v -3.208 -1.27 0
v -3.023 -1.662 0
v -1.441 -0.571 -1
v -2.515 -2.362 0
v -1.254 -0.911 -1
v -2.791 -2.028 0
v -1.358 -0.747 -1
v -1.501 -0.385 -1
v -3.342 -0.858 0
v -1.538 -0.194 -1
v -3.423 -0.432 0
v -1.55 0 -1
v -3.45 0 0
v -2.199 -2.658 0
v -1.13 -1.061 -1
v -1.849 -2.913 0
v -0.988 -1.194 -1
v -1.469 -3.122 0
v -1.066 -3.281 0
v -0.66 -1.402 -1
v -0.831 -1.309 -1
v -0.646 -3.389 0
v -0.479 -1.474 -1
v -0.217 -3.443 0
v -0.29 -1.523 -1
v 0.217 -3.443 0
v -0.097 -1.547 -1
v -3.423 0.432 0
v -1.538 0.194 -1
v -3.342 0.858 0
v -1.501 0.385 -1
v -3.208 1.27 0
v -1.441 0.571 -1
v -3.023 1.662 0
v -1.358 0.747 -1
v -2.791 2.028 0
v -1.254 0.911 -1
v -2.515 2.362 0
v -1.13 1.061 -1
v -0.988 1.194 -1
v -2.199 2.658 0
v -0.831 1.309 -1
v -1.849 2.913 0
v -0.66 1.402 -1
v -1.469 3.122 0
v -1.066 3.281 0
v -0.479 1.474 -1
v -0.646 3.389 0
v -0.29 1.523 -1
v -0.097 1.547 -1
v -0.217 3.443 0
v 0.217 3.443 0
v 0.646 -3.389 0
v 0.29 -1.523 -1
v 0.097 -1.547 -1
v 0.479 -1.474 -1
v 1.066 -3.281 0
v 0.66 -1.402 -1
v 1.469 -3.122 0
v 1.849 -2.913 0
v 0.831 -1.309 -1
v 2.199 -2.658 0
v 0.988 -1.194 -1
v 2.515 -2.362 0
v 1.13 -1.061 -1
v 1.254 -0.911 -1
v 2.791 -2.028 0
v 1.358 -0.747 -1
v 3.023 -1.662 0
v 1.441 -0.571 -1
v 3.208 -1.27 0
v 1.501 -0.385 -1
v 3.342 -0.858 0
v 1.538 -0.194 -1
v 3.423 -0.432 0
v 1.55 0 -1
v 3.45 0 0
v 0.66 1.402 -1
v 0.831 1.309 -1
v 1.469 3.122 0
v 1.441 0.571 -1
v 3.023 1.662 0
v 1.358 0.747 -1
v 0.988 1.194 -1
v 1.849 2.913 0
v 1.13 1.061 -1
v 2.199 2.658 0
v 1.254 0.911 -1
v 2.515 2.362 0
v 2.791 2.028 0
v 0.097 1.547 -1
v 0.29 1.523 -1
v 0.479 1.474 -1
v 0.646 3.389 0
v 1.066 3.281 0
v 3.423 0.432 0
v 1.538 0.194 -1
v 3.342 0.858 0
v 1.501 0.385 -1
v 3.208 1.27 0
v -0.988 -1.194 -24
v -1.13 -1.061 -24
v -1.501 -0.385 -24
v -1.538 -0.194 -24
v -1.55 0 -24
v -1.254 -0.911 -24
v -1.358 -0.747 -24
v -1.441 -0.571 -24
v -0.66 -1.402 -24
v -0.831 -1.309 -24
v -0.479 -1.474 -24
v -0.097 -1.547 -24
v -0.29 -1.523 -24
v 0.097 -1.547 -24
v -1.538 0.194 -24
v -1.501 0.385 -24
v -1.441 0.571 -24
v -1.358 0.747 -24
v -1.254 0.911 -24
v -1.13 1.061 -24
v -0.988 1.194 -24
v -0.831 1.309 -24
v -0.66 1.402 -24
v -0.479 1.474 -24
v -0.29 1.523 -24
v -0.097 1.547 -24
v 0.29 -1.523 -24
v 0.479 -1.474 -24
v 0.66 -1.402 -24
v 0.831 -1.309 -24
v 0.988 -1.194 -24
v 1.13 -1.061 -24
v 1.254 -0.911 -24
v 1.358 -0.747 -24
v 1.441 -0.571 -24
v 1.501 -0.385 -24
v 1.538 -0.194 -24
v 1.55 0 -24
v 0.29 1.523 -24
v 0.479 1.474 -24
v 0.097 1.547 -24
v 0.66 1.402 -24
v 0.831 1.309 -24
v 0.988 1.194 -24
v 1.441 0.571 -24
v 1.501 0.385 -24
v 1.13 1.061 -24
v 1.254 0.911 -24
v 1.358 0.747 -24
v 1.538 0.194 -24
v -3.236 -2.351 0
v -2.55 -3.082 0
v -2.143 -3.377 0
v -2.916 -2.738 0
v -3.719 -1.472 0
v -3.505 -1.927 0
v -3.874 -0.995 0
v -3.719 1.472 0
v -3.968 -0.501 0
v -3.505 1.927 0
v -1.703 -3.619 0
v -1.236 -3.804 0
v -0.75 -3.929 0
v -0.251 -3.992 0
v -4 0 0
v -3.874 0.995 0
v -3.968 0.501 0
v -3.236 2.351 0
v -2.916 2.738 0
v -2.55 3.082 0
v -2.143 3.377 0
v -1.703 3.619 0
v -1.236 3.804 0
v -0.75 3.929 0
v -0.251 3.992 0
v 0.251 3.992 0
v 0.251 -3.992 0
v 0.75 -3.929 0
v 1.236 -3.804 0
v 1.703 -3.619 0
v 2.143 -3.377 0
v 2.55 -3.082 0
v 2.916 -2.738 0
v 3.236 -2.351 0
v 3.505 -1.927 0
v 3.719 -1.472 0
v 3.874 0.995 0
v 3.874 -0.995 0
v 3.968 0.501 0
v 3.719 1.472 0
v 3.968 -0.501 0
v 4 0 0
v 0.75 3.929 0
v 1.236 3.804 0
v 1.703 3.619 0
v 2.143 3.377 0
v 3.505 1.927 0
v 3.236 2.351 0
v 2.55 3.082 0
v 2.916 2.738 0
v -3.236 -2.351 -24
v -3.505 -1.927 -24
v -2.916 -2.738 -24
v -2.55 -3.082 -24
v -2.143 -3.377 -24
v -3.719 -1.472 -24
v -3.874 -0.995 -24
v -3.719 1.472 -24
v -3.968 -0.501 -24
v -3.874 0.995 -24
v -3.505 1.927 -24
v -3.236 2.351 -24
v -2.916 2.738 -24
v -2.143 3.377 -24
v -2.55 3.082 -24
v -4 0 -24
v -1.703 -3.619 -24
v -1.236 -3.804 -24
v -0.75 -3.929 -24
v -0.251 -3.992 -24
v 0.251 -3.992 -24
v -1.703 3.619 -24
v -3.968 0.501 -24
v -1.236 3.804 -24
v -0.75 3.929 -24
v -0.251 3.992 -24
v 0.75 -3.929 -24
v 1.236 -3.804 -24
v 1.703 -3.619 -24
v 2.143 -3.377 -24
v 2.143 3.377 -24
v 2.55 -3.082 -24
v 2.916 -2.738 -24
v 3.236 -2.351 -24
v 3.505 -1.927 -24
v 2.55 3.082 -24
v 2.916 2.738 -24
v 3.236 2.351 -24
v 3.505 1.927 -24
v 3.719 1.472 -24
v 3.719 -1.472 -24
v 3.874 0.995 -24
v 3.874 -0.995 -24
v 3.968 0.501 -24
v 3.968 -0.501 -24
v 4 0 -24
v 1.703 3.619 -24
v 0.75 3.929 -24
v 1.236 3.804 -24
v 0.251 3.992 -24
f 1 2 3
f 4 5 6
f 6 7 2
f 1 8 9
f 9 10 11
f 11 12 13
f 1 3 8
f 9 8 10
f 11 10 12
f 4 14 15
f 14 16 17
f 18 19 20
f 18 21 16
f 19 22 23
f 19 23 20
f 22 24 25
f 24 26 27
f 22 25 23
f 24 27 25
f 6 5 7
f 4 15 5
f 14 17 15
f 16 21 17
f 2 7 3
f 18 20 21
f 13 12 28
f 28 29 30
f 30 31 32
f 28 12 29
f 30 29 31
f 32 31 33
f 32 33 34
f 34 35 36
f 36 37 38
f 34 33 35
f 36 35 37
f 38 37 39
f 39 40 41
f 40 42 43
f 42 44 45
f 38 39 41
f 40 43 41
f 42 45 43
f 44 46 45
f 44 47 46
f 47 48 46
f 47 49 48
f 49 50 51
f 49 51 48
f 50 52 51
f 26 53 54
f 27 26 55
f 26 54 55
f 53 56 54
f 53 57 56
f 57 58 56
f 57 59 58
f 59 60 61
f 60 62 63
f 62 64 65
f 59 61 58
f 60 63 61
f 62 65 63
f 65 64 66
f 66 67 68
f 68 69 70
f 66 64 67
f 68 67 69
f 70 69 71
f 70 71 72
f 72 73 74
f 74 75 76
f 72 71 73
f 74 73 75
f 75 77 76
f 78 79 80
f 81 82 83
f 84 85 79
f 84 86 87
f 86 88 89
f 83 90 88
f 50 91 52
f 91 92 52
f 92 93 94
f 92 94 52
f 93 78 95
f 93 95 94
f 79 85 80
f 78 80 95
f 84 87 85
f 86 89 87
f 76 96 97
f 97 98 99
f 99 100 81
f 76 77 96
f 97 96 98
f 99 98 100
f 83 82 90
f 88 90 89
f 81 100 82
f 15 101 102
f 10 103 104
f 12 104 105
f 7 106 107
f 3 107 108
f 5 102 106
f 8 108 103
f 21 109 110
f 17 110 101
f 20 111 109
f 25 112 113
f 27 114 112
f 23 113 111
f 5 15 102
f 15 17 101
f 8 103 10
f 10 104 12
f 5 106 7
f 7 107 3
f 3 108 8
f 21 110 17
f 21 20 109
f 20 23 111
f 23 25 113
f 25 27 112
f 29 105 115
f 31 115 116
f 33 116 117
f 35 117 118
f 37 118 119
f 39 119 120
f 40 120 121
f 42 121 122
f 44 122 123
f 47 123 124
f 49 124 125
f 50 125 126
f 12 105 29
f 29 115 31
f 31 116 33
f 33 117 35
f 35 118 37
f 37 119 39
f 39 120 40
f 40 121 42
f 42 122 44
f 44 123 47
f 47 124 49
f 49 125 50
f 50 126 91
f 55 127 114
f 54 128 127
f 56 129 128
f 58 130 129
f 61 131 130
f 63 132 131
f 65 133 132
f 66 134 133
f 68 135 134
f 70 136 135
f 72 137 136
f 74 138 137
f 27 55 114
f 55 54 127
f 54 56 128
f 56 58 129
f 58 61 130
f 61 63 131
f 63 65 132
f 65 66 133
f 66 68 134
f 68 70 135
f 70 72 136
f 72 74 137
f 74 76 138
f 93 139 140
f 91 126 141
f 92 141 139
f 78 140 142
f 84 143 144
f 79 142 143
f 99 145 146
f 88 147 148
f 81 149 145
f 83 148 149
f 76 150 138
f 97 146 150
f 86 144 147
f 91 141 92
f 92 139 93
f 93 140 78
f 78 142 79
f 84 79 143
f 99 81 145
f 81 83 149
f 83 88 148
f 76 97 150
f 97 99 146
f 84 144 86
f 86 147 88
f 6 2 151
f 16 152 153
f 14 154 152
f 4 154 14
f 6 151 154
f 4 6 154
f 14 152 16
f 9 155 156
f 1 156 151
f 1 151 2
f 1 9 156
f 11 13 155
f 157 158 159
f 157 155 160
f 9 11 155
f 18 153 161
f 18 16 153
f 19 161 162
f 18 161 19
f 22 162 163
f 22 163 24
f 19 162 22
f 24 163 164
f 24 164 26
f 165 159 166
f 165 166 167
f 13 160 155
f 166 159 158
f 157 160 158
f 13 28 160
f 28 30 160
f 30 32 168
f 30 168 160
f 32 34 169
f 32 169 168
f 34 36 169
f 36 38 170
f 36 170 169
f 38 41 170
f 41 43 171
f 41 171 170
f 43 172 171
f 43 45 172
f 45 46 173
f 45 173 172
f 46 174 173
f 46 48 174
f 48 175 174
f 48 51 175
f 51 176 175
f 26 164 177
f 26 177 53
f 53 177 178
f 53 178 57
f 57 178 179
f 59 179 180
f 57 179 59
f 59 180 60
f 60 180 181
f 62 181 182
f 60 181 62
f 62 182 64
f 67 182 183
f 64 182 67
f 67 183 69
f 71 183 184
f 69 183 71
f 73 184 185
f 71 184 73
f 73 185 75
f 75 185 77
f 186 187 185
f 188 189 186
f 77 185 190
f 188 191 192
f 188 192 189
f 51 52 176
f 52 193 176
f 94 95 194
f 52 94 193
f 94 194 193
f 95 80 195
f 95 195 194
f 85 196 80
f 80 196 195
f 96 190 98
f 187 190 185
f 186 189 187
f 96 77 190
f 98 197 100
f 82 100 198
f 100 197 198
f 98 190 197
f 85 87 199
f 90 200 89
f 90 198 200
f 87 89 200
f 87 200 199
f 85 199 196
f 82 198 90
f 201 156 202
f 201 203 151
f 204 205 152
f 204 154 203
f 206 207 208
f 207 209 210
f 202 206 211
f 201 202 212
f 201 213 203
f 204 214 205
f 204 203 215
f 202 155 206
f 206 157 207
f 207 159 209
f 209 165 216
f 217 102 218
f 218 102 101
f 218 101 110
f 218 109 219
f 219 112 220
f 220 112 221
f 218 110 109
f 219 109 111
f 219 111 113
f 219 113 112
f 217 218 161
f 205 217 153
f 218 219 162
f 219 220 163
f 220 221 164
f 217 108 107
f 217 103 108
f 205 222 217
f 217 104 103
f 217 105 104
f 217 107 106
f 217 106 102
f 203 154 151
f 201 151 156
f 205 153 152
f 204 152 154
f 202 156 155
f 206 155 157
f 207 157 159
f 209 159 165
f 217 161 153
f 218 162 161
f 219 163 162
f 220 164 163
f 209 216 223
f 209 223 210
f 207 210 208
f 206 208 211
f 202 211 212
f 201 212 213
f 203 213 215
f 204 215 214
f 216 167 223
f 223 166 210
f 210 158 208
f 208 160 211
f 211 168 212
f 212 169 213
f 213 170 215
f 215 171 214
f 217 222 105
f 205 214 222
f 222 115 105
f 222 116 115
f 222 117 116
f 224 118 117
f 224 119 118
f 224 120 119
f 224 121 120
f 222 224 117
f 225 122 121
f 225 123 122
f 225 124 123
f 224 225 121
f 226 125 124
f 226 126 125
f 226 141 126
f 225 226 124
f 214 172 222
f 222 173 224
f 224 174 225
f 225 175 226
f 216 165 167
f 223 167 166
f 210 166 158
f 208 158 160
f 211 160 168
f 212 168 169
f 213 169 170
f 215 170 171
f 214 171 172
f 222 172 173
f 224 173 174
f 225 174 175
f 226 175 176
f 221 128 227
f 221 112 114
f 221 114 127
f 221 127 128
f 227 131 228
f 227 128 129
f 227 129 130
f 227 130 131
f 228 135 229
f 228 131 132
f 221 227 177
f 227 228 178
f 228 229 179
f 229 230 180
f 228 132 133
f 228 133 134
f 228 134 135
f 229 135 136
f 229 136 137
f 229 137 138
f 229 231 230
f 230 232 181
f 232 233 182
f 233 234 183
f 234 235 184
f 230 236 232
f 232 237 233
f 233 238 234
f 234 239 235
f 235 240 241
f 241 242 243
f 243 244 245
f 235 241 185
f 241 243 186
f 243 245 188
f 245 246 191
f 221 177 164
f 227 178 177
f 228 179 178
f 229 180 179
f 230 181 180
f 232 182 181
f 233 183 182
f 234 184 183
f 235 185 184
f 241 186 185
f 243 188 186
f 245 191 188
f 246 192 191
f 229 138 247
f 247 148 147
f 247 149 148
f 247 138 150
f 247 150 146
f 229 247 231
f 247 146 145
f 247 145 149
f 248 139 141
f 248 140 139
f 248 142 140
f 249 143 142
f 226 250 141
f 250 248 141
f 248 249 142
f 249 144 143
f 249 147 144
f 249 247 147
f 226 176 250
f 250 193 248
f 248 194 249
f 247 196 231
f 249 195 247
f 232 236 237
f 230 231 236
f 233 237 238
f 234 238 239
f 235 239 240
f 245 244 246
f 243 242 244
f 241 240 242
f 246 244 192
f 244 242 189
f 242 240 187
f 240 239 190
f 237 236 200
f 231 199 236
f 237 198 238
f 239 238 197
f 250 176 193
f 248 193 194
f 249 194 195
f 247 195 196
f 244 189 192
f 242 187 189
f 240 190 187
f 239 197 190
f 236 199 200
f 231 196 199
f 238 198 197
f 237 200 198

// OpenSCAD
$fn = 50;

difference() {
	union() {
		translate(v = [0, 0, -24.0]) {
			cylinder(h = 24, r = 4.0);
		}
	}
	union() {
		translate(v = [0, 0, 0]) {
			rotate(a = [0, 0, 0]) {
				difference() {
					union() {
						translate(v = [0, 0, -27.0]) {
							cylinder(h = 27, r = 1.25);
						}
						translate(v = [0, 0, -1.0]) {
							cylinder(h = 1.0, r1 = 1.55, r2 = 3.45);
						}
						translate(v = [0, 0, -27.0]) {
							cylinder(h = 27, r = 1.55);
						}
						translate(v = [0, 0, -27.0]) {
							cylinder(h = 27, r = 1.25);
						}
					}
					union();
				}
			}
		}
	}
}
